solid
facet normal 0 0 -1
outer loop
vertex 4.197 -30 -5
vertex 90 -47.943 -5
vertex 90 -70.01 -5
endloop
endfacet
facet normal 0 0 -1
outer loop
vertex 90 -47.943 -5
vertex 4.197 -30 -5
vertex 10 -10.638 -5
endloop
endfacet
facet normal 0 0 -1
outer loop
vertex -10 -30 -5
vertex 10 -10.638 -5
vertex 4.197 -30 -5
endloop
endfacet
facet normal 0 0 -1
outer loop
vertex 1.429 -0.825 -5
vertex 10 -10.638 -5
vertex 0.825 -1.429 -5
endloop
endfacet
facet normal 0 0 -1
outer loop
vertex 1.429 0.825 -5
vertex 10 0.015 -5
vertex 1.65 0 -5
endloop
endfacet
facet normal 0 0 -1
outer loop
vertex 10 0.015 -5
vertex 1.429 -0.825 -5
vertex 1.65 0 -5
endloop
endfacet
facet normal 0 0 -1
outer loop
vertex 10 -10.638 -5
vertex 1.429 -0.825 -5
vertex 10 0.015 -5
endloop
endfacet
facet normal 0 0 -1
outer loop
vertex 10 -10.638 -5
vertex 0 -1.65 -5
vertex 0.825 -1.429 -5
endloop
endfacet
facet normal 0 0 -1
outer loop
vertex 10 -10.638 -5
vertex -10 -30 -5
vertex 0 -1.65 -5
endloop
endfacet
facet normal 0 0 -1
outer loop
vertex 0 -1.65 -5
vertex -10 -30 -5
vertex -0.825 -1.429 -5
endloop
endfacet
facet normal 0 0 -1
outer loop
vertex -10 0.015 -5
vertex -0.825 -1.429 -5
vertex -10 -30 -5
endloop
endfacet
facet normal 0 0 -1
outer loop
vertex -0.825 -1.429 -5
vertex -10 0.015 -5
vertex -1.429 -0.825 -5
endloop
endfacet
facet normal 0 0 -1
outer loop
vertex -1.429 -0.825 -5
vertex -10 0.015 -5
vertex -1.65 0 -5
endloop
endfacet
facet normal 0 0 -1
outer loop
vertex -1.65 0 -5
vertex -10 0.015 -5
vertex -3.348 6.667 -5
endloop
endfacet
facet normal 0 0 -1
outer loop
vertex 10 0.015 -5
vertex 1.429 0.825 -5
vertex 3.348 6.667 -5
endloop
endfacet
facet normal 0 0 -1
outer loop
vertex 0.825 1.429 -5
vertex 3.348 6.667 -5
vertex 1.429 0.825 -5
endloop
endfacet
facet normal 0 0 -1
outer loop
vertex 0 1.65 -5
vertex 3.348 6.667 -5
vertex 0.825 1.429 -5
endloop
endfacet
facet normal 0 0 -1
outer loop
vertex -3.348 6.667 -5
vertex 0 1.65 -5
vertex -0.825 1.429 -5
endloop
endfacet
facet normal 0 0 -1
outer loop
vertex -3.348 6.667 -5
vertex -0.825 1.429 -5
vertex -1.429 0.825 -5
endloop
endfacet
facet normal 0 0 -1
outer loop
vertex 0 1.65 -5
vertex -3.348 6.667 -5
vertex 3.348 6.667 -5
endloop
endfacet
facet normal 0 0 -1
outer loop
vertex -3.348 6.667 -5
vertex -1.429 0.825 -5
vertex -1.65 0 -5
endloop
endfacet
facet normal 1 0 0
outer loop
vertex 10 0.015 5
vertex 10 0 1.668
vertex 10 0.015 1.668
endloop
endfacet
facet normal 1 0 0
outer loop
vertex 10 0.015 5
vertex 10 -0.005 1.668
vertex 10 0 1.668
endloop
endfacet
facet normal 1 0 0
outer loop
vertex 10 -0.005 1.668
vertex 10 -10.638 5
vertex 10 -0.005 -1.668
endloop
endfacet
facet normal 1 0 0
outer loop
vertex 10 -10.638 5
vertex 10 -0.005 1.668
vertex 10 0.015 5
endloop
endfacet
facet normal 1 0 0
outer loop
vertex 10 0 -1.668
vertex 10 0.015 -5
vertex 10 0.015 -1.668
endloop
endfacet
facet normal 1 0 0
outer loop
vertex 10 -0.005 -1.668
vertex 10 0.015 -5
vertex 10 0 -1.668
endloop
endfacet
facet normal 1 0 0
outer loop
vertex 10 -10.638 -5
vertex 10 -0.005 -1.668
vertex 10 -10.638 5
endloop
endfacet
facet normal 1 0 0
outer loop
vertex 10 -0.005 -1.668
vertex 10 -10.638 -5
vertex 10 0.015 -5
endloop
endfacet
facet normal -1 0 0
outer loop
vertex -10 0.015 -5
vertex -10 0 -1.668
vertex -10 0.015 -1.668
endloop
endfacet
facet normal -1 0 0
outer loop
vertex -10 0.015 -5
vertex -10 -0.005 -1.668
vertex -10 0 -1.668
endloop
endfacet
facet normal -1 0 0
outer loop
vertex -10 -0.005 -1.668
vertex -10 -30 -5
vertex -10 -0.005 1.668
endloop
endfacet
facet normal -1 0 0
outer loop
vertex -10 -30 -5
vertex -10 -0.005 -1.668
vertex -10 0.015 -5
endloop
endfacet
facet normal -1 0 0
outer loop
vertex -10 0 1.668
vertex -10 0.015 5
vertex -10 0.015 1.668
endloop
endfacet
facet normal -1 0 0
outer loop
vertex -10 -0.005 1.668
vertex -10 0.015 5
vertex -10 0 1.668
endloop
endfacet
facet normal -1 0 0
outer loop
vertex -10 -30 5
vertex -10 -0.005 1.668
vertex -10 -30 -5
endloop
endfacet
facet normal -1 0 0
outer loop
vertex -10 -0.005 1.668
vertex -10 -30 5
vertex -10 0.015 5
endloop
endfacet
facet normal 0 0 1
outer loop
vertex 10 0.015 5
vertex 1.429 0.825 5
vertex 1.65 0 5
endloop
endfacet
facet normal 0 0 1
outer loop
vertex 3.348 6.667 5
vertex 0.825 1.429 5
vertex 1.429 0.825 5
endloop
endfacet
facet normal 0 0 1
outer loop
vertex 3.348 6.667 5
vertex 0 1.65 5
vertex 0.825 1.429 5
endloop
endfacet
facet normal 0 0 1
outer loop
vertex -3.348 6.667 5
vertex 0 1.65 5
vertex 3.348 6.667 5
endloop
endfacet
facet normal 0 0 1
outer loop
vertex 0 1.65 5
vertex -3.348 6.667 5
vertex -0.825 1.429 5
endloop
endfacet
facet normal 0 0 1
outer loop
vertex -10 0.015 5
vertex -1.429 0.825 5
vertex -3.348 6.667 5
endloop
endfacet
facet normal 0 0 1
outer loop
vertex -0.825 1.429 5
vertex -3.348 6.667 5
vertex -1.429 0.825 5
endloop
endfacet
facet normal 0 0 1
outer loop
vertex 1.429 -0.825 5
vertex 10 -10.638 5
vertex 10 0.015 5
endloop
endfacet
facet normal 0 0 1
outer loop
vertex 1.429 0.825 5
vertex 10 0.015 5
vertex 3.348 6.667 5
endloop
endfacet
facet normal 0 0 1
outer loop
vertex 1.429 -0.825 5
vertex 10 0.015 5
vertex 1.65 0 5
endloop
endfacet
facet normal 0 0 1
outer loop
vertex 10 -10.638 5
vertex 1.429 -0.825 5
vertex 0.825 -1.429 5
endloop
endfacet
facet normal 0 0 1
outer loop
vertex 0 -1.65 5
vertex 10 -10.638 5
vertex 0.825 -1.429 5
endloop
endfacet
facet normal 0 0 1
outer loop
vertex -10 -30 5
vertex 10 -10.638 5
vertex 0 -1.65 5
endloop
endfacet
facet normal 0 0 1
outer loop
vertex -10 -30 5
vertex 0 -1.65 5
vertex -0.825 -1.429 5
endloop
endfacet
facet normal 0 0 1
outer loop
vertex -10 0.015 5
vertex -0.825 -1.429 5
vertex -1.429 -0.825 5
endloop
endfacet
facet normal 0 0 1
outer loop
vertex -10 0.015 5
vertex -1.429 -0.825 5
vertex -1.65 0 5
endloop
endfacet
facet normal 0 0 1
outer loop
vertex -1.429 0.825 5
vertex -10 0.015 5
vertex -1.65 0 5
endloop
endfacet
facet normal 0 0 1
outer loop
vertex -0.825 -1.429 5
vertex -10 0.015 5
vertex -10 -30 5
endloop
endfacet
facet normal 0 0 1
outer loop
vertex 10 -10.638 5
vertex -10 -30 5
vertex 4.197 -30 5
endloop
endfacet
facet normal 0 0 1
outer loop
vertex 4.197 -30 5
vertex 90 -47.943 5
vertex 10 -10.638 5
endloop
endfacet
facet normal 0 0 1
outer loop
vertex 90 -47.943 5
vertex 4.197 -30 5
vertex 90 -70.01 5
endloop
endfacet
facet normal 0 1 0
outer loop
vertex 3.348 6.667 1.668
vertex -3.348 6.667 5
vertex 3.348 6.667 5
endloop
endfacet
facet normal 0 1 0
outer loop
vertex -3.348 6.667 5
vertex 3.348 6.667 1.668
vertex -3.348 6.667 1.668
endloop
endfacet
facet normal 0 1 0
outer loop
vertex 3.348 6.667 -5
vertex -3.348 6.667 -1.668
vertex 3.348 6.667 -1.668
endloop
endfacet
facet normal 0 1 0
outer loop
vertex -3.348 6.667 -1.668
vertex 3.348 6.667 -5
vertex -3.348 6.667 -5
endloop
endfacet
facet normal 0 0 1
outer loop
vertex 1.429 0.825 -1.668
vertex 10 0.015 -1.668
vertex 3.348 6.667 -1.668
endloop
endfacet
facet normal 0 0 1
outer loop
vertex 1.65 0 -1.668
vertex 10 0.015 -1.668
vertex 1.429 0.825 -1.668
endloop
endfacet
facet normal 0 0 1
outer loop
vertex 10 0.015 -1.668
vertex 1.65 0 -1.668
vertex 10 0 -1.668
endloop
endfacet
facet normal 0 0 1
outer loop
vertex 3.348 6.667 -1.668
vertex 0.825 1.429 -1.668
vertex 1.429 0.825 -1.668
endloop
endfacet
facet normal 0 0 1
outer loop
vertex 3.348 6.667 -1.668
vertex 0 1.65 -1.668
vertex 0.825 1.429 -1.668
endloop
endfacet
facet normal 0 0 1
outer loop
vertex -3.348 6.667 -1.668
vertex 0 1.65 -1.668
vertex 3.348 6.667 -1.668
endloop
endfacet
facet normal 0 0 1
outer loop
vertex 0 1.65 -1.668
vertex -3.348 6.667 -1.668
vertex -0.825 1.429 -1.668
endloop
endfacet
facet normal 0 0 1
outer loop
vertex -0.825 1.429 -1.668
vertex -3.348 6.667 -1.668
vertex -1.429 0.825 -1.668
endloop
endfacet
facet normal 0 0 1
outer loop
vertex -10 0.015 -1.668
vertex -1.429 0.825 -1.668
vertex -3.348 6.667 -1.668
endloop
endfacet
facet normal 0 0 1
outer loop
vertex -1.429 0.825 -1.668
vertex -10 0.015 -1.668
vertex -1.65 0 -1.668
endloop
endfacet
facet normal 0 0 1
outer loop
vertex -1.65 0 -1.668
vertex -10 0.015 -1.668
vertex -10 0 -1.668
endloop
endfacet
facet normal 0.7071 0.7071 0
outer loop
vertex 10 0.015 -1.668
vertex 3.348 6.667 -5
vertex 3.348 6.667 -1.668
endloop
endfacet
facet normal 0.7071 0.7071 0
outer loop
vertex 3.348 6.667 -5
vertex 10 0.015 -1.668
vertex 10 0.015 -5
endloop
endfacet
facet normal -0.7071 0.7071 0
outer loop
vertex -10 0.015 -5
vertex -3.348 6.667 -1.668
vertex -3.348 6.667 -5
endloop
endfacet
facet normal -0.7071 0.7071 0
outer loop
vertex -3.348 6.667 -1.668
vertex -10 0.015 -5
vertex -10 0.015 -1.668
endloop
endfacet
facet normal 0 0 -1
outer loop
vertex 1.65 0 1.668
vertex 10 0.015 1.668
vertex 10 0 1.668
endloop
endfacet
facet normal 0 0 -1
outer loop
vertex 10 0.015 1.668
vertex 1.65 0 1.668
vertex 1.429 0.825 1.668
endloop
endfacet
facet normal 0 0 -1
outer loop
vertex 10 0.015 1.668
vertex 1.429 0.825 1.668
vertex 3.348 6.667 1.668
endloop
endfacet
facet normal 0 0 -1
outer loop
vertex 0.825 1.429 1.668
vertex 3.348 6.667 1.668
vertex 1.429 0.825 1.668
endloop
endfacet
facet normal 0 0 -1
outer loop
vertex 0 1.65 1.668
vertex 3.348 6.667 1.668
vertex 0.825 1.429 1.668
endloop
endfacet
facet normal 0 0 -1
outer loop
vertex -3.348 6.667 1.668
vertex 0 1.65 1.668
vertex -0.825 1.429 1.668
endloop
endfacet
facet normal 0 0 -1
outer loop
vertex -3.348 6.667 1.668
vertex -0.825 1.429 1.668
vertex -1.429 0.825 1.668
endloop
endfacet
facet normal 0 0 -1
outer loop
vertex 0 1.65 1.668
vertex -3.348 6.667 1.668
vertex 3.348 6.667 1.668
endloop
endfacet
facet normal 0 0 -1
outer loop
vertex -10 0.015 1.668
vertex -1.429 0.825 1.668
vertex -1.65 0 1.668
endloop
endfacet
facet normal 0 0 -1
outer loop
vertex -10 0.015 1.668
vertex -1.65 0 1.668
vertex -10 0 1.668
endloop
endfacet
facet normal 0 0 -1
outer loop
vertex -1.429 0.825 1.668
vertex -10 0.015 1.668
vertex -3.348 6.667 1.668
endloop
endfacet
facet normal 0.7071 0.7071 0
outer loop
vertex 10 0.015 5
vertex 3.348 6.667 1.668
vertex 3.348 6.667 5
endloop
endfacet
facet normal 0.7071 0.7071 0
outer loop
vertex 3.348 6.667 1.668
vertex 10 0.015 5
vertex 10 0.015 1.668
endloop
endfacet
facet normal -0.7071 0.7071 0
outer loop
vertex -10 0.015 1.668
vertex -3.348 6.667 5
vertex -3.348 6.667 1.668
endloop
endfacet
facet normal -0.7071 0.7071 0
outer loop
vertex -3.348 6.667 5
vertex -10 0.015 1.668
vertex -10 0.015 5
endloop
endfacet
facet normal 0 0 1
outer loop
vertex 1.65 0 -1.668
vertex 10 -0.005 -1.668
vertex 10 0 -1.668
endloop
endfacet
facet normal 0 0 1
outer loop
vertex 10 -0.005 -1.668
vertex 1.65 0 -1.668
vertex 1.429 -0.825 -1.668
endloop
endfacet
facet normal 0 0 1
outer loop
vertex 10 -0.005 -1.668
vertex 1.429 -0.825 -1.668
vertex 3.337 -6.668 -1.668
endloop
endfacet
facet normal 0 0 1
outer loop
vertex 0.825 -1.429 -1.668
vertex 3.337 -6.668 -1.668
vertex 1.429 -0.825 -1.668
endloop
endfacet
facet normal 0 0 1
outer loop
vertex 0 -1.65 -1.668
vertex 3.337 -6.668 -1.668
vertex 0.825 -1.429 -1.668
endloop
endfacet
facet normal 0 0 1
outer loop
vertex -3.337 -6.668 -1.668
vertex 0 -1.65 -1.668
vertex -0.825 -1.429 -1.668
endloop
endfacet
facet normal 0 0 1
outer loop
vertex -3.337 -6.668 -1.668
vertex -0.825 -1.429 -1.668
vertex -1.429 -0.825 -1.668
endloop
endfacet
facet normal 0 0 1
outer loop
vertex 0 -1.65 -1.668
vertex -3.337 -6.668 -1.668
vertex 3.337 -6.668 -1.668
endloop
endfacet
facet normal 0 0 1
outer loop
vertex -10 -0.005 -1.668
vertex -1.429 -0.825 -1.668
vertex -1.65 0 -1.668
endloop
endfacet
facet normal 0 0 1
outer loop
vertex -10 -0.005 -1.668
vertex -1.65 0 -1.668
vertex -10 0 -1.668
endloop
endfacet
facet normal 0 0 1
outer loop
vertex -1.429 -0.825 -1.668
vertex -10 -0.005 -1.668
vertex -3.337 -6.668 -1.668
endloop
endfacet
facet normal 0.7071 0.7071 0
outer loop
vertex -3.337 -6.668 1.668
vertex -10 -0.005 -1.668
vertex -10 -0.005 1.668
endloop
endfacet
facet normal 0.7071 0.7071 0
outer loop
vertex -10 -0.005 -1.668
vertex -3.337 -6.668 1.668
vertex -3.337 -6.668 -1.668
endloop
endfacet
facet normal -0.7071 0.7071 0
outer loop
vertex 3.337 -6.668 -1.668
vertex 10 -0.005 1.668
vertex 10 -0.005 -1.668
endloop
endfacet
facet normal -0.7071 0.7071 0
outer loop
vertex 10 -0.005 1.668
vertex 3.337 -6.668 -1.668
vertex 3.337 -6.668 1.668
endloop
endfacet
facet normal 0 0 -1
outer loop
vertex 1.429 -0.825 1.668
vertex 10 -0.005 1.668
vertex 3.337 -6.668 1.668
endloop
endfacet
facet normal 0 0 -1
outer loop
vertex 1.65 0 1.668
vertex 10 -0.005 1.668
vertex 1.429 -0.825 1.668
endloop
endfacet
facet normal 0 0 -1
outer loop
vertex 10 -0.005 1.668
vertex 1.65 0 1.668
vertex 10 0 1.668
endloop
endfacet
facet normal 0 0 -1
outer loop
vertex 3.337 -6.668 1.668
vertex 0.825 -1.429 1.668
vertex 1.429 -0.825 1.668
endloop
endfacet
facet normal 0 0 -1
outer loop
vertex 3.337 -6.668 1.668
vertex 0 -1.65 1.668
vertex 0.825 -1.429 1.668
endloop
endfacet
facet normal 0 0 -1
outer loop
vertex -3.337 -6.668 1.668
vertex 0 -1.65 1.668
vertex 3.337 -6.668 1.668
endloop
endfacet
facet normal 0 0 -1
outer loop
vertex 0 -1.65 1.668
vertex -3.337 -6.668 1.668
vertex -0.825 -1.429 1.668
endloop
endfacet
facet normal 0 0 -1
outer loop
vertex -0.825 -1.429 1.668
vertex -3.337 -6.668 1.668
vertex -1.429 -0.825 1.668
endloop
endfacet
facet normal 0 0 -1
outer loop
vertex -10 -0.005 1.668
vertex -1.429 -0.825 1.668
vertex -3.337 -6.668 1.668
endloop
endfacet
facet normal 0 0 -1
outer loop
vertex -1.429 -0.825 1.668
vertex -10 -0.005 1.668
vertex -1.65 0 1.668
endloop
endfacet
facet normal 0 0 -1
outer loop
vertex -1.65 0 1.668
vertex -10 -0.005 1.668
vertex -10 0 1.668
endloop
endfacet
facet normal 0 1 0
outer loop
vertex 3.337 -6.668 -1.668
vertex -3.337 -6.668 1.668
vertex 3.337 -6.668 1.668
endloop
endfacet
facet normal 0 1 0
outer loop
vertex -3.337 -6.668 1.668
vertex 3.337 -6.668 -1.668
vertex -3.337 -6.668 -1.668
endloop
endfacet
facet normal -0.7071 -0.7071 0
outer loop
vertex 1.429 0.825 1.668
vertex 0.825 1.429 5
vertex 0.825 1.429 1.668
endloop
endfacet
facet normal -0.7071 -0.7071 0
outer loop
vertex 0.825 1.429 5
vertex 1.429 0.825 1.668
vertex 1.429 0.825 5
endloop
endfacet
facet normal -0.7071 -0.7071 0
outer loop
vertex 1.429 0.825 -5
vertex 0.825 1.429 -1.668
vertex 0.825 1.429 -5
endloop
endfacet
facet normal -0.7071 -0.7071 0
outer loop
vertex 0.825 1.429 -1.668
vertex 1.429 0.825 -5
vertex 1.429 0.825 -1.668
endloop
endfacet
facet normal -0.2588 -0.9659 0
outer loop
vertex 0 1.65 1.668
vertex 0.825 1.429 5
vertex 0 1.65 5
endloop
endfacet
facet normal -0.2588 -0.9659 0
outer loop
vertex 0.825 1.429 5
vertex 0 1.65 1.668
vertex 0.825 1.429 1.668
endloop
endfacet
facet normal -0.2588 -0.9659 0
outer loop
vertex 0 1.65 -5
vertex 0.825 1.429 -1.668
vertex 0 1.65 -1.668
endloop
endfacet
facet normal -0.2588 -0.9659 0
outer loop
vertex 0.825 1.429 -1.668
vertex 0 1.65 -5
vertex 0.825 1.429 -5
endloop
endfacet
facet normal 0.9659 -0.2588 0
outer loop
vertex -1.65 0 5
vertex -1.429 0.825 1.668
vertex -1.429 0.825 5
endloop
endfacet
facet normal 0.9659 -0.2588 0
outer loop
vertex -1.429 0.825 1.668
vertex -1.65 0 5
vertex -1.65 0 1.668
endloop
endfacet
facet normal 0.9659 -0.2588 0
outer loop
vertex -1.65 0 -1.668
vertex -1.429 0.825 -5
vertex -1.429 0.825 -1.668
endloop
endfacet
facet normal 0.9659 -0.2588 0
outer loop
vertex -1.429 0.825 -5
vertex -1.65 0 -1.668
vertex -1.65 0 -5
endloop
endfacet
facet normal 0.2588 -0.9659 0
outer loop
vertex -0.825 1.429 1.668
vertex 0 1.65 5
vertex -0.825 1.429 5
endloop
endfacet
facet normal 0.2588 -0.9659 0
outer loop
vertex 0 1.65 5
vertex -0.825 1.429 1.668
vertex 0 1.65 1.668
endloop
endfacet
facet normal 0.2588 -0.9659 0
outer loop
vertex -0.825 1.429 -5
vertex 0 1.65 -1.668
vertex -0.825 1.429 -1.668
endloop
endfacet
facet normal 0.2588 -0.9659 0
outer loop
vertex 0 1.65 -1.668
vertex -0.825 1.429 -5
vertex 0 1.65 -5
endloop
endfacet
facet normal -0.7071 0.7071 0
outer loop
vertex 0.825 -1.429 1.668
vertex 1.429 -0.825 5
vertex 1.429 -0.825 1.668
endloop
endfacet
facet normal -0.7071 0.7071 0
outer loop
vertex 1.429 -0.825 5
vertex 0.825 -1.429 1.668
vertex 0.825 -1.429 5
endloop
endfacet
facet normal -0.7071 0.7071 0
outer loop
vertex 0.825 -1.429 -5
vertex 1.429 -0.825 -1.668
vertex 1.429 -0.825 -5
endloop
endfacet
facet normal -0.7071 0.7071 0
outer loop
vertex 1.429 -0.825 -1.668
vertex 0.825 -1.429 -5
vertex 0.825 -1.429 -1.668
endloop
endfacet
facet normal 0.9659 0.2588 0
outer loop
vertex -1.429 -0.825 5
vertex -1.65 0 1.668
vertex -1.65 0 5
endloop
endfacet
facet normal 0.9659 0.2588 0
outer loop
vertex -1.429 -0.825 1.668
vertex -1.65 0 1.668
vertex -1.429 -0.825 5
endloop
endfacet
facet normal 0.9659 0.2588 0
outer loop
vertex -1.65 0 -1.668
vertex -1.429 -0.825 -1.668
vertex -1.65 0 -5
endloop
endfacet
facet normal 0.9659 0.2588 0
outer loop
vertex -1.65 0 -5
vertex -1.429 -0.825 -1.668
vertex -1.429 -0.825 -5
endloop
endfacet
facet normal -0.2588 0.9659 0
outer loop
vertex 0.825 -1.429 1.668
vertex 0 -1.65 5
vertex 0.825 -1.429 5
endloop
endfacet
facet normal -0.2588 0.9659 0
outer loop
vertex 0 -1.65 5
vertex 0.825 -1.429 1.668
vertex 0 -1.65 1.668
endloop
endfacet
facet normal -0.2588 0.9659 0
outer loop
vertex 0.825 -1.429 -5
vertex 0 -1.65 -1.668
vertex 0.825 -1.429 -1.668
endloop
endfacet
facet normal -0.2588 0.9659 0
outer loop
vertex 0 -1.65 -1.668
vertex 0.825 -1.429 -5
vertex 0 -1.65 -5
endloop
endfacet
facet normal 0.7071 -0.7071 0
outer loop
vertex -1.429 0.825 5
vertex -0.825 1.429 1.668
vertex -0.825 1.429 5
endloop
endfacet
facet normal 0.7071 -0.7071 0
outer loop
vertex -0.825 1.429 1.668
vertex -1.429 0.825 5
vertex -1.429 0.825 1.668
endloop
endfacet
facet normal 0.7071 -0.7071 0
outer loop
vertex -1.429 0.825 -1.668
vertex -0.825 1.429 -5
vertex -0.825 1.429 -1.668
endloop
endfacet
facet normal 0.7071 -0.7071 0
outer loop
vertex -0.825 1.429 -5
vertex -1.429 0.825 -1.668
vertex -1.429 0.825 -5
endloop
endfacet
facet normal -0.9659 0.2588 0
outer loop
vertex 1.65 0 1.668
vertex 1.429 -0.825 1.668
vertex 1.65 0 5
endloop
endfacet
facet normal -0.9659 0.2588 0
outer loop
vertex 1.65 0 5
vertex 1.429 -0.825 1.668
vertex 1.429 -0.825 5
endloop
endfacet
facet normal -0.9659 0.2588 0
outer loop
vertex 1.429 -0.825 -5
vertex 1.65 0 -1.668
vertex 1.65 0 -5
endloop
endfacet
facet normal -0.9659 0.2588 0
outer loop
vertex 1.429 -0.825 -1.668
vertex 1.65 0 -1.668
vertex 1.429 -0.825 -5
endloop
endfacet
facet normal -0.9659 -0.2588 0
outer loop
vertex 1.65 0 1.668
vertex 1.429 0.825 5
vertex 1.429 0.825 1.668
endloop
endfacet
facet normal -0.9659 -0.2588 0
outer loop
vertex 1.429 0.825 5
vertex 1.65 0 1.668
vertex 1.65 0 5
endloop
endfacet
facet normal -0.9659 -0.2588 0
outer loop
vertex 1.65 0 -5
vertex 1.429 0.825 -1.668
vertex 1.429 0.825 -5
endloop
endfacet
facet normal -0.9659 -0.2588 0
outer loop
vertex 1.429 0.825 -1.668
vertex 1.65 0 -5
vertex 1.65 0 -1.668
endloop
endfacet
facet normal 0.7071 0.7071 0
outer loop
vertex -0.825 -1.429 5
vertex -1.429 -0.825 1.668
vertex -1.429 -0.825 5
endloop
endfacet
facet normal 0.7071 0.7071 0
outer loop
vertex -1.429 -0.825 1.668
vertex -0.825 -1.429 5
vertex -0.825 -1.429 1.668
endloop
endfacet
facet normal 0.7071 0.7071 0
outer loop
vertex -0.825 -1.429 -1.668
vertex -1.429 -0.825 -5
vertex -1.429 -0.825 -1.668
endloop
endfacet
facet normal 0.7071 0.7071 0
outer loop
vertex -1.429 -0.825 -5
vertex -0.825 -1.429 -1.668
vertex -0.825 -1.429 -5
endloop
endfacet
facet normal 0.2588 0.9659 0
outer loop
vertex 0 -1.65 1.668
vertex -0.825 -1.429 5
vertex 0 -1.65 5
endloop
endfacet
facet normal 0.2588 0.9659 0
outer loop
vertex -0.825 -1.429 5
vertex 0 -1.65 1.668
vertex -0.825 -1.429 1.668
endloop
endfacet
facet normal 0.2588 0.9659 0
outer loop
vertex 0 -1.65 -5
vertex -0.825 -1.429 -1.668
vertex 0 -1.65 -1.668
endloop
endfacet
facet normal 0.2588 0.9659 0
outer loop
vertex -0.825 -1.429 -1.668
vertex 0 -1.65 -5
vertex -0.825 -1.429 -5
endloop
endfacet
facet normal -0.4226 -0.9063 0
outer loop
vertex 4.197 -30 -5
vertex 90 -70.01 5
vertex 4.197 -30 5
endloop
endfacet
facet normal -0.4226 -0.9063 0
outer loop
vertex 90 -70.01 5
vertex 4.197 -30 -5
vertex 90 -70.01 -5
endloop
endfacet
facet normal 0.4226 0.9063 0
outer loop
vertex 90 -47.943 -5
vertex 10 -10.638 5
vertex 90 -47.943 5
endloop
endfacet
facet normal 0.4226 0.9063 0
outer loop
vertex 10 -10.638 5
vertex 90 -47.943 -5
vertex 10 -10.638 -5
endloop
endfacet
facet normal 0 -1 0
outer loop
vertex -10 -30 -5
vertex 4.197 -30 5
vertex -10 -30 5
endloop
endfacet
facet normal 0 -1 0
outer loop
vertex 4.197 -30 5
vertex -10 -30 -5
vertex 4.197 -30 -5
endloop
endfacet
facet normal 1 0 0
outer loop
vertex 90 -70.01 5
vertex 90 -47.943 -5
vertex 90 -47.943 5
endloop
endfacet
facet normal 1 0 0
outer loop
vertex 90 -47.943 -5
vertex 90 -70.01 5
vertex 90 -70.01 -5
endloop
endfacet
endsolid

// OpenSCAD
include <BOSL/constants.scad>
use <BOSL/joiners.scad>

include <constants.scad>

module leg() {
    
    half_joiner2(h=20, l=20, w=10, a=45, screwsize=3, guides=false);
    
    difference() {
        
        
        translate([-5,-30,-10])
        {
            // This is the long leg
            rotate([25,0,0])
            translate([0,6,9])
                cube([10,20,100]);
            
            // This is the rectangle that joins the joiner and the leg
            cube([10,20,20]);
        }
        
        // This is a big block that makes the bottom part of the leg flat.
        translate([-100,-100,90])
            cube([200,200,30]);
        
    }
}    

// Rotate the whole thing to make it print flat.
rotate([0,90,0])
    leg();
